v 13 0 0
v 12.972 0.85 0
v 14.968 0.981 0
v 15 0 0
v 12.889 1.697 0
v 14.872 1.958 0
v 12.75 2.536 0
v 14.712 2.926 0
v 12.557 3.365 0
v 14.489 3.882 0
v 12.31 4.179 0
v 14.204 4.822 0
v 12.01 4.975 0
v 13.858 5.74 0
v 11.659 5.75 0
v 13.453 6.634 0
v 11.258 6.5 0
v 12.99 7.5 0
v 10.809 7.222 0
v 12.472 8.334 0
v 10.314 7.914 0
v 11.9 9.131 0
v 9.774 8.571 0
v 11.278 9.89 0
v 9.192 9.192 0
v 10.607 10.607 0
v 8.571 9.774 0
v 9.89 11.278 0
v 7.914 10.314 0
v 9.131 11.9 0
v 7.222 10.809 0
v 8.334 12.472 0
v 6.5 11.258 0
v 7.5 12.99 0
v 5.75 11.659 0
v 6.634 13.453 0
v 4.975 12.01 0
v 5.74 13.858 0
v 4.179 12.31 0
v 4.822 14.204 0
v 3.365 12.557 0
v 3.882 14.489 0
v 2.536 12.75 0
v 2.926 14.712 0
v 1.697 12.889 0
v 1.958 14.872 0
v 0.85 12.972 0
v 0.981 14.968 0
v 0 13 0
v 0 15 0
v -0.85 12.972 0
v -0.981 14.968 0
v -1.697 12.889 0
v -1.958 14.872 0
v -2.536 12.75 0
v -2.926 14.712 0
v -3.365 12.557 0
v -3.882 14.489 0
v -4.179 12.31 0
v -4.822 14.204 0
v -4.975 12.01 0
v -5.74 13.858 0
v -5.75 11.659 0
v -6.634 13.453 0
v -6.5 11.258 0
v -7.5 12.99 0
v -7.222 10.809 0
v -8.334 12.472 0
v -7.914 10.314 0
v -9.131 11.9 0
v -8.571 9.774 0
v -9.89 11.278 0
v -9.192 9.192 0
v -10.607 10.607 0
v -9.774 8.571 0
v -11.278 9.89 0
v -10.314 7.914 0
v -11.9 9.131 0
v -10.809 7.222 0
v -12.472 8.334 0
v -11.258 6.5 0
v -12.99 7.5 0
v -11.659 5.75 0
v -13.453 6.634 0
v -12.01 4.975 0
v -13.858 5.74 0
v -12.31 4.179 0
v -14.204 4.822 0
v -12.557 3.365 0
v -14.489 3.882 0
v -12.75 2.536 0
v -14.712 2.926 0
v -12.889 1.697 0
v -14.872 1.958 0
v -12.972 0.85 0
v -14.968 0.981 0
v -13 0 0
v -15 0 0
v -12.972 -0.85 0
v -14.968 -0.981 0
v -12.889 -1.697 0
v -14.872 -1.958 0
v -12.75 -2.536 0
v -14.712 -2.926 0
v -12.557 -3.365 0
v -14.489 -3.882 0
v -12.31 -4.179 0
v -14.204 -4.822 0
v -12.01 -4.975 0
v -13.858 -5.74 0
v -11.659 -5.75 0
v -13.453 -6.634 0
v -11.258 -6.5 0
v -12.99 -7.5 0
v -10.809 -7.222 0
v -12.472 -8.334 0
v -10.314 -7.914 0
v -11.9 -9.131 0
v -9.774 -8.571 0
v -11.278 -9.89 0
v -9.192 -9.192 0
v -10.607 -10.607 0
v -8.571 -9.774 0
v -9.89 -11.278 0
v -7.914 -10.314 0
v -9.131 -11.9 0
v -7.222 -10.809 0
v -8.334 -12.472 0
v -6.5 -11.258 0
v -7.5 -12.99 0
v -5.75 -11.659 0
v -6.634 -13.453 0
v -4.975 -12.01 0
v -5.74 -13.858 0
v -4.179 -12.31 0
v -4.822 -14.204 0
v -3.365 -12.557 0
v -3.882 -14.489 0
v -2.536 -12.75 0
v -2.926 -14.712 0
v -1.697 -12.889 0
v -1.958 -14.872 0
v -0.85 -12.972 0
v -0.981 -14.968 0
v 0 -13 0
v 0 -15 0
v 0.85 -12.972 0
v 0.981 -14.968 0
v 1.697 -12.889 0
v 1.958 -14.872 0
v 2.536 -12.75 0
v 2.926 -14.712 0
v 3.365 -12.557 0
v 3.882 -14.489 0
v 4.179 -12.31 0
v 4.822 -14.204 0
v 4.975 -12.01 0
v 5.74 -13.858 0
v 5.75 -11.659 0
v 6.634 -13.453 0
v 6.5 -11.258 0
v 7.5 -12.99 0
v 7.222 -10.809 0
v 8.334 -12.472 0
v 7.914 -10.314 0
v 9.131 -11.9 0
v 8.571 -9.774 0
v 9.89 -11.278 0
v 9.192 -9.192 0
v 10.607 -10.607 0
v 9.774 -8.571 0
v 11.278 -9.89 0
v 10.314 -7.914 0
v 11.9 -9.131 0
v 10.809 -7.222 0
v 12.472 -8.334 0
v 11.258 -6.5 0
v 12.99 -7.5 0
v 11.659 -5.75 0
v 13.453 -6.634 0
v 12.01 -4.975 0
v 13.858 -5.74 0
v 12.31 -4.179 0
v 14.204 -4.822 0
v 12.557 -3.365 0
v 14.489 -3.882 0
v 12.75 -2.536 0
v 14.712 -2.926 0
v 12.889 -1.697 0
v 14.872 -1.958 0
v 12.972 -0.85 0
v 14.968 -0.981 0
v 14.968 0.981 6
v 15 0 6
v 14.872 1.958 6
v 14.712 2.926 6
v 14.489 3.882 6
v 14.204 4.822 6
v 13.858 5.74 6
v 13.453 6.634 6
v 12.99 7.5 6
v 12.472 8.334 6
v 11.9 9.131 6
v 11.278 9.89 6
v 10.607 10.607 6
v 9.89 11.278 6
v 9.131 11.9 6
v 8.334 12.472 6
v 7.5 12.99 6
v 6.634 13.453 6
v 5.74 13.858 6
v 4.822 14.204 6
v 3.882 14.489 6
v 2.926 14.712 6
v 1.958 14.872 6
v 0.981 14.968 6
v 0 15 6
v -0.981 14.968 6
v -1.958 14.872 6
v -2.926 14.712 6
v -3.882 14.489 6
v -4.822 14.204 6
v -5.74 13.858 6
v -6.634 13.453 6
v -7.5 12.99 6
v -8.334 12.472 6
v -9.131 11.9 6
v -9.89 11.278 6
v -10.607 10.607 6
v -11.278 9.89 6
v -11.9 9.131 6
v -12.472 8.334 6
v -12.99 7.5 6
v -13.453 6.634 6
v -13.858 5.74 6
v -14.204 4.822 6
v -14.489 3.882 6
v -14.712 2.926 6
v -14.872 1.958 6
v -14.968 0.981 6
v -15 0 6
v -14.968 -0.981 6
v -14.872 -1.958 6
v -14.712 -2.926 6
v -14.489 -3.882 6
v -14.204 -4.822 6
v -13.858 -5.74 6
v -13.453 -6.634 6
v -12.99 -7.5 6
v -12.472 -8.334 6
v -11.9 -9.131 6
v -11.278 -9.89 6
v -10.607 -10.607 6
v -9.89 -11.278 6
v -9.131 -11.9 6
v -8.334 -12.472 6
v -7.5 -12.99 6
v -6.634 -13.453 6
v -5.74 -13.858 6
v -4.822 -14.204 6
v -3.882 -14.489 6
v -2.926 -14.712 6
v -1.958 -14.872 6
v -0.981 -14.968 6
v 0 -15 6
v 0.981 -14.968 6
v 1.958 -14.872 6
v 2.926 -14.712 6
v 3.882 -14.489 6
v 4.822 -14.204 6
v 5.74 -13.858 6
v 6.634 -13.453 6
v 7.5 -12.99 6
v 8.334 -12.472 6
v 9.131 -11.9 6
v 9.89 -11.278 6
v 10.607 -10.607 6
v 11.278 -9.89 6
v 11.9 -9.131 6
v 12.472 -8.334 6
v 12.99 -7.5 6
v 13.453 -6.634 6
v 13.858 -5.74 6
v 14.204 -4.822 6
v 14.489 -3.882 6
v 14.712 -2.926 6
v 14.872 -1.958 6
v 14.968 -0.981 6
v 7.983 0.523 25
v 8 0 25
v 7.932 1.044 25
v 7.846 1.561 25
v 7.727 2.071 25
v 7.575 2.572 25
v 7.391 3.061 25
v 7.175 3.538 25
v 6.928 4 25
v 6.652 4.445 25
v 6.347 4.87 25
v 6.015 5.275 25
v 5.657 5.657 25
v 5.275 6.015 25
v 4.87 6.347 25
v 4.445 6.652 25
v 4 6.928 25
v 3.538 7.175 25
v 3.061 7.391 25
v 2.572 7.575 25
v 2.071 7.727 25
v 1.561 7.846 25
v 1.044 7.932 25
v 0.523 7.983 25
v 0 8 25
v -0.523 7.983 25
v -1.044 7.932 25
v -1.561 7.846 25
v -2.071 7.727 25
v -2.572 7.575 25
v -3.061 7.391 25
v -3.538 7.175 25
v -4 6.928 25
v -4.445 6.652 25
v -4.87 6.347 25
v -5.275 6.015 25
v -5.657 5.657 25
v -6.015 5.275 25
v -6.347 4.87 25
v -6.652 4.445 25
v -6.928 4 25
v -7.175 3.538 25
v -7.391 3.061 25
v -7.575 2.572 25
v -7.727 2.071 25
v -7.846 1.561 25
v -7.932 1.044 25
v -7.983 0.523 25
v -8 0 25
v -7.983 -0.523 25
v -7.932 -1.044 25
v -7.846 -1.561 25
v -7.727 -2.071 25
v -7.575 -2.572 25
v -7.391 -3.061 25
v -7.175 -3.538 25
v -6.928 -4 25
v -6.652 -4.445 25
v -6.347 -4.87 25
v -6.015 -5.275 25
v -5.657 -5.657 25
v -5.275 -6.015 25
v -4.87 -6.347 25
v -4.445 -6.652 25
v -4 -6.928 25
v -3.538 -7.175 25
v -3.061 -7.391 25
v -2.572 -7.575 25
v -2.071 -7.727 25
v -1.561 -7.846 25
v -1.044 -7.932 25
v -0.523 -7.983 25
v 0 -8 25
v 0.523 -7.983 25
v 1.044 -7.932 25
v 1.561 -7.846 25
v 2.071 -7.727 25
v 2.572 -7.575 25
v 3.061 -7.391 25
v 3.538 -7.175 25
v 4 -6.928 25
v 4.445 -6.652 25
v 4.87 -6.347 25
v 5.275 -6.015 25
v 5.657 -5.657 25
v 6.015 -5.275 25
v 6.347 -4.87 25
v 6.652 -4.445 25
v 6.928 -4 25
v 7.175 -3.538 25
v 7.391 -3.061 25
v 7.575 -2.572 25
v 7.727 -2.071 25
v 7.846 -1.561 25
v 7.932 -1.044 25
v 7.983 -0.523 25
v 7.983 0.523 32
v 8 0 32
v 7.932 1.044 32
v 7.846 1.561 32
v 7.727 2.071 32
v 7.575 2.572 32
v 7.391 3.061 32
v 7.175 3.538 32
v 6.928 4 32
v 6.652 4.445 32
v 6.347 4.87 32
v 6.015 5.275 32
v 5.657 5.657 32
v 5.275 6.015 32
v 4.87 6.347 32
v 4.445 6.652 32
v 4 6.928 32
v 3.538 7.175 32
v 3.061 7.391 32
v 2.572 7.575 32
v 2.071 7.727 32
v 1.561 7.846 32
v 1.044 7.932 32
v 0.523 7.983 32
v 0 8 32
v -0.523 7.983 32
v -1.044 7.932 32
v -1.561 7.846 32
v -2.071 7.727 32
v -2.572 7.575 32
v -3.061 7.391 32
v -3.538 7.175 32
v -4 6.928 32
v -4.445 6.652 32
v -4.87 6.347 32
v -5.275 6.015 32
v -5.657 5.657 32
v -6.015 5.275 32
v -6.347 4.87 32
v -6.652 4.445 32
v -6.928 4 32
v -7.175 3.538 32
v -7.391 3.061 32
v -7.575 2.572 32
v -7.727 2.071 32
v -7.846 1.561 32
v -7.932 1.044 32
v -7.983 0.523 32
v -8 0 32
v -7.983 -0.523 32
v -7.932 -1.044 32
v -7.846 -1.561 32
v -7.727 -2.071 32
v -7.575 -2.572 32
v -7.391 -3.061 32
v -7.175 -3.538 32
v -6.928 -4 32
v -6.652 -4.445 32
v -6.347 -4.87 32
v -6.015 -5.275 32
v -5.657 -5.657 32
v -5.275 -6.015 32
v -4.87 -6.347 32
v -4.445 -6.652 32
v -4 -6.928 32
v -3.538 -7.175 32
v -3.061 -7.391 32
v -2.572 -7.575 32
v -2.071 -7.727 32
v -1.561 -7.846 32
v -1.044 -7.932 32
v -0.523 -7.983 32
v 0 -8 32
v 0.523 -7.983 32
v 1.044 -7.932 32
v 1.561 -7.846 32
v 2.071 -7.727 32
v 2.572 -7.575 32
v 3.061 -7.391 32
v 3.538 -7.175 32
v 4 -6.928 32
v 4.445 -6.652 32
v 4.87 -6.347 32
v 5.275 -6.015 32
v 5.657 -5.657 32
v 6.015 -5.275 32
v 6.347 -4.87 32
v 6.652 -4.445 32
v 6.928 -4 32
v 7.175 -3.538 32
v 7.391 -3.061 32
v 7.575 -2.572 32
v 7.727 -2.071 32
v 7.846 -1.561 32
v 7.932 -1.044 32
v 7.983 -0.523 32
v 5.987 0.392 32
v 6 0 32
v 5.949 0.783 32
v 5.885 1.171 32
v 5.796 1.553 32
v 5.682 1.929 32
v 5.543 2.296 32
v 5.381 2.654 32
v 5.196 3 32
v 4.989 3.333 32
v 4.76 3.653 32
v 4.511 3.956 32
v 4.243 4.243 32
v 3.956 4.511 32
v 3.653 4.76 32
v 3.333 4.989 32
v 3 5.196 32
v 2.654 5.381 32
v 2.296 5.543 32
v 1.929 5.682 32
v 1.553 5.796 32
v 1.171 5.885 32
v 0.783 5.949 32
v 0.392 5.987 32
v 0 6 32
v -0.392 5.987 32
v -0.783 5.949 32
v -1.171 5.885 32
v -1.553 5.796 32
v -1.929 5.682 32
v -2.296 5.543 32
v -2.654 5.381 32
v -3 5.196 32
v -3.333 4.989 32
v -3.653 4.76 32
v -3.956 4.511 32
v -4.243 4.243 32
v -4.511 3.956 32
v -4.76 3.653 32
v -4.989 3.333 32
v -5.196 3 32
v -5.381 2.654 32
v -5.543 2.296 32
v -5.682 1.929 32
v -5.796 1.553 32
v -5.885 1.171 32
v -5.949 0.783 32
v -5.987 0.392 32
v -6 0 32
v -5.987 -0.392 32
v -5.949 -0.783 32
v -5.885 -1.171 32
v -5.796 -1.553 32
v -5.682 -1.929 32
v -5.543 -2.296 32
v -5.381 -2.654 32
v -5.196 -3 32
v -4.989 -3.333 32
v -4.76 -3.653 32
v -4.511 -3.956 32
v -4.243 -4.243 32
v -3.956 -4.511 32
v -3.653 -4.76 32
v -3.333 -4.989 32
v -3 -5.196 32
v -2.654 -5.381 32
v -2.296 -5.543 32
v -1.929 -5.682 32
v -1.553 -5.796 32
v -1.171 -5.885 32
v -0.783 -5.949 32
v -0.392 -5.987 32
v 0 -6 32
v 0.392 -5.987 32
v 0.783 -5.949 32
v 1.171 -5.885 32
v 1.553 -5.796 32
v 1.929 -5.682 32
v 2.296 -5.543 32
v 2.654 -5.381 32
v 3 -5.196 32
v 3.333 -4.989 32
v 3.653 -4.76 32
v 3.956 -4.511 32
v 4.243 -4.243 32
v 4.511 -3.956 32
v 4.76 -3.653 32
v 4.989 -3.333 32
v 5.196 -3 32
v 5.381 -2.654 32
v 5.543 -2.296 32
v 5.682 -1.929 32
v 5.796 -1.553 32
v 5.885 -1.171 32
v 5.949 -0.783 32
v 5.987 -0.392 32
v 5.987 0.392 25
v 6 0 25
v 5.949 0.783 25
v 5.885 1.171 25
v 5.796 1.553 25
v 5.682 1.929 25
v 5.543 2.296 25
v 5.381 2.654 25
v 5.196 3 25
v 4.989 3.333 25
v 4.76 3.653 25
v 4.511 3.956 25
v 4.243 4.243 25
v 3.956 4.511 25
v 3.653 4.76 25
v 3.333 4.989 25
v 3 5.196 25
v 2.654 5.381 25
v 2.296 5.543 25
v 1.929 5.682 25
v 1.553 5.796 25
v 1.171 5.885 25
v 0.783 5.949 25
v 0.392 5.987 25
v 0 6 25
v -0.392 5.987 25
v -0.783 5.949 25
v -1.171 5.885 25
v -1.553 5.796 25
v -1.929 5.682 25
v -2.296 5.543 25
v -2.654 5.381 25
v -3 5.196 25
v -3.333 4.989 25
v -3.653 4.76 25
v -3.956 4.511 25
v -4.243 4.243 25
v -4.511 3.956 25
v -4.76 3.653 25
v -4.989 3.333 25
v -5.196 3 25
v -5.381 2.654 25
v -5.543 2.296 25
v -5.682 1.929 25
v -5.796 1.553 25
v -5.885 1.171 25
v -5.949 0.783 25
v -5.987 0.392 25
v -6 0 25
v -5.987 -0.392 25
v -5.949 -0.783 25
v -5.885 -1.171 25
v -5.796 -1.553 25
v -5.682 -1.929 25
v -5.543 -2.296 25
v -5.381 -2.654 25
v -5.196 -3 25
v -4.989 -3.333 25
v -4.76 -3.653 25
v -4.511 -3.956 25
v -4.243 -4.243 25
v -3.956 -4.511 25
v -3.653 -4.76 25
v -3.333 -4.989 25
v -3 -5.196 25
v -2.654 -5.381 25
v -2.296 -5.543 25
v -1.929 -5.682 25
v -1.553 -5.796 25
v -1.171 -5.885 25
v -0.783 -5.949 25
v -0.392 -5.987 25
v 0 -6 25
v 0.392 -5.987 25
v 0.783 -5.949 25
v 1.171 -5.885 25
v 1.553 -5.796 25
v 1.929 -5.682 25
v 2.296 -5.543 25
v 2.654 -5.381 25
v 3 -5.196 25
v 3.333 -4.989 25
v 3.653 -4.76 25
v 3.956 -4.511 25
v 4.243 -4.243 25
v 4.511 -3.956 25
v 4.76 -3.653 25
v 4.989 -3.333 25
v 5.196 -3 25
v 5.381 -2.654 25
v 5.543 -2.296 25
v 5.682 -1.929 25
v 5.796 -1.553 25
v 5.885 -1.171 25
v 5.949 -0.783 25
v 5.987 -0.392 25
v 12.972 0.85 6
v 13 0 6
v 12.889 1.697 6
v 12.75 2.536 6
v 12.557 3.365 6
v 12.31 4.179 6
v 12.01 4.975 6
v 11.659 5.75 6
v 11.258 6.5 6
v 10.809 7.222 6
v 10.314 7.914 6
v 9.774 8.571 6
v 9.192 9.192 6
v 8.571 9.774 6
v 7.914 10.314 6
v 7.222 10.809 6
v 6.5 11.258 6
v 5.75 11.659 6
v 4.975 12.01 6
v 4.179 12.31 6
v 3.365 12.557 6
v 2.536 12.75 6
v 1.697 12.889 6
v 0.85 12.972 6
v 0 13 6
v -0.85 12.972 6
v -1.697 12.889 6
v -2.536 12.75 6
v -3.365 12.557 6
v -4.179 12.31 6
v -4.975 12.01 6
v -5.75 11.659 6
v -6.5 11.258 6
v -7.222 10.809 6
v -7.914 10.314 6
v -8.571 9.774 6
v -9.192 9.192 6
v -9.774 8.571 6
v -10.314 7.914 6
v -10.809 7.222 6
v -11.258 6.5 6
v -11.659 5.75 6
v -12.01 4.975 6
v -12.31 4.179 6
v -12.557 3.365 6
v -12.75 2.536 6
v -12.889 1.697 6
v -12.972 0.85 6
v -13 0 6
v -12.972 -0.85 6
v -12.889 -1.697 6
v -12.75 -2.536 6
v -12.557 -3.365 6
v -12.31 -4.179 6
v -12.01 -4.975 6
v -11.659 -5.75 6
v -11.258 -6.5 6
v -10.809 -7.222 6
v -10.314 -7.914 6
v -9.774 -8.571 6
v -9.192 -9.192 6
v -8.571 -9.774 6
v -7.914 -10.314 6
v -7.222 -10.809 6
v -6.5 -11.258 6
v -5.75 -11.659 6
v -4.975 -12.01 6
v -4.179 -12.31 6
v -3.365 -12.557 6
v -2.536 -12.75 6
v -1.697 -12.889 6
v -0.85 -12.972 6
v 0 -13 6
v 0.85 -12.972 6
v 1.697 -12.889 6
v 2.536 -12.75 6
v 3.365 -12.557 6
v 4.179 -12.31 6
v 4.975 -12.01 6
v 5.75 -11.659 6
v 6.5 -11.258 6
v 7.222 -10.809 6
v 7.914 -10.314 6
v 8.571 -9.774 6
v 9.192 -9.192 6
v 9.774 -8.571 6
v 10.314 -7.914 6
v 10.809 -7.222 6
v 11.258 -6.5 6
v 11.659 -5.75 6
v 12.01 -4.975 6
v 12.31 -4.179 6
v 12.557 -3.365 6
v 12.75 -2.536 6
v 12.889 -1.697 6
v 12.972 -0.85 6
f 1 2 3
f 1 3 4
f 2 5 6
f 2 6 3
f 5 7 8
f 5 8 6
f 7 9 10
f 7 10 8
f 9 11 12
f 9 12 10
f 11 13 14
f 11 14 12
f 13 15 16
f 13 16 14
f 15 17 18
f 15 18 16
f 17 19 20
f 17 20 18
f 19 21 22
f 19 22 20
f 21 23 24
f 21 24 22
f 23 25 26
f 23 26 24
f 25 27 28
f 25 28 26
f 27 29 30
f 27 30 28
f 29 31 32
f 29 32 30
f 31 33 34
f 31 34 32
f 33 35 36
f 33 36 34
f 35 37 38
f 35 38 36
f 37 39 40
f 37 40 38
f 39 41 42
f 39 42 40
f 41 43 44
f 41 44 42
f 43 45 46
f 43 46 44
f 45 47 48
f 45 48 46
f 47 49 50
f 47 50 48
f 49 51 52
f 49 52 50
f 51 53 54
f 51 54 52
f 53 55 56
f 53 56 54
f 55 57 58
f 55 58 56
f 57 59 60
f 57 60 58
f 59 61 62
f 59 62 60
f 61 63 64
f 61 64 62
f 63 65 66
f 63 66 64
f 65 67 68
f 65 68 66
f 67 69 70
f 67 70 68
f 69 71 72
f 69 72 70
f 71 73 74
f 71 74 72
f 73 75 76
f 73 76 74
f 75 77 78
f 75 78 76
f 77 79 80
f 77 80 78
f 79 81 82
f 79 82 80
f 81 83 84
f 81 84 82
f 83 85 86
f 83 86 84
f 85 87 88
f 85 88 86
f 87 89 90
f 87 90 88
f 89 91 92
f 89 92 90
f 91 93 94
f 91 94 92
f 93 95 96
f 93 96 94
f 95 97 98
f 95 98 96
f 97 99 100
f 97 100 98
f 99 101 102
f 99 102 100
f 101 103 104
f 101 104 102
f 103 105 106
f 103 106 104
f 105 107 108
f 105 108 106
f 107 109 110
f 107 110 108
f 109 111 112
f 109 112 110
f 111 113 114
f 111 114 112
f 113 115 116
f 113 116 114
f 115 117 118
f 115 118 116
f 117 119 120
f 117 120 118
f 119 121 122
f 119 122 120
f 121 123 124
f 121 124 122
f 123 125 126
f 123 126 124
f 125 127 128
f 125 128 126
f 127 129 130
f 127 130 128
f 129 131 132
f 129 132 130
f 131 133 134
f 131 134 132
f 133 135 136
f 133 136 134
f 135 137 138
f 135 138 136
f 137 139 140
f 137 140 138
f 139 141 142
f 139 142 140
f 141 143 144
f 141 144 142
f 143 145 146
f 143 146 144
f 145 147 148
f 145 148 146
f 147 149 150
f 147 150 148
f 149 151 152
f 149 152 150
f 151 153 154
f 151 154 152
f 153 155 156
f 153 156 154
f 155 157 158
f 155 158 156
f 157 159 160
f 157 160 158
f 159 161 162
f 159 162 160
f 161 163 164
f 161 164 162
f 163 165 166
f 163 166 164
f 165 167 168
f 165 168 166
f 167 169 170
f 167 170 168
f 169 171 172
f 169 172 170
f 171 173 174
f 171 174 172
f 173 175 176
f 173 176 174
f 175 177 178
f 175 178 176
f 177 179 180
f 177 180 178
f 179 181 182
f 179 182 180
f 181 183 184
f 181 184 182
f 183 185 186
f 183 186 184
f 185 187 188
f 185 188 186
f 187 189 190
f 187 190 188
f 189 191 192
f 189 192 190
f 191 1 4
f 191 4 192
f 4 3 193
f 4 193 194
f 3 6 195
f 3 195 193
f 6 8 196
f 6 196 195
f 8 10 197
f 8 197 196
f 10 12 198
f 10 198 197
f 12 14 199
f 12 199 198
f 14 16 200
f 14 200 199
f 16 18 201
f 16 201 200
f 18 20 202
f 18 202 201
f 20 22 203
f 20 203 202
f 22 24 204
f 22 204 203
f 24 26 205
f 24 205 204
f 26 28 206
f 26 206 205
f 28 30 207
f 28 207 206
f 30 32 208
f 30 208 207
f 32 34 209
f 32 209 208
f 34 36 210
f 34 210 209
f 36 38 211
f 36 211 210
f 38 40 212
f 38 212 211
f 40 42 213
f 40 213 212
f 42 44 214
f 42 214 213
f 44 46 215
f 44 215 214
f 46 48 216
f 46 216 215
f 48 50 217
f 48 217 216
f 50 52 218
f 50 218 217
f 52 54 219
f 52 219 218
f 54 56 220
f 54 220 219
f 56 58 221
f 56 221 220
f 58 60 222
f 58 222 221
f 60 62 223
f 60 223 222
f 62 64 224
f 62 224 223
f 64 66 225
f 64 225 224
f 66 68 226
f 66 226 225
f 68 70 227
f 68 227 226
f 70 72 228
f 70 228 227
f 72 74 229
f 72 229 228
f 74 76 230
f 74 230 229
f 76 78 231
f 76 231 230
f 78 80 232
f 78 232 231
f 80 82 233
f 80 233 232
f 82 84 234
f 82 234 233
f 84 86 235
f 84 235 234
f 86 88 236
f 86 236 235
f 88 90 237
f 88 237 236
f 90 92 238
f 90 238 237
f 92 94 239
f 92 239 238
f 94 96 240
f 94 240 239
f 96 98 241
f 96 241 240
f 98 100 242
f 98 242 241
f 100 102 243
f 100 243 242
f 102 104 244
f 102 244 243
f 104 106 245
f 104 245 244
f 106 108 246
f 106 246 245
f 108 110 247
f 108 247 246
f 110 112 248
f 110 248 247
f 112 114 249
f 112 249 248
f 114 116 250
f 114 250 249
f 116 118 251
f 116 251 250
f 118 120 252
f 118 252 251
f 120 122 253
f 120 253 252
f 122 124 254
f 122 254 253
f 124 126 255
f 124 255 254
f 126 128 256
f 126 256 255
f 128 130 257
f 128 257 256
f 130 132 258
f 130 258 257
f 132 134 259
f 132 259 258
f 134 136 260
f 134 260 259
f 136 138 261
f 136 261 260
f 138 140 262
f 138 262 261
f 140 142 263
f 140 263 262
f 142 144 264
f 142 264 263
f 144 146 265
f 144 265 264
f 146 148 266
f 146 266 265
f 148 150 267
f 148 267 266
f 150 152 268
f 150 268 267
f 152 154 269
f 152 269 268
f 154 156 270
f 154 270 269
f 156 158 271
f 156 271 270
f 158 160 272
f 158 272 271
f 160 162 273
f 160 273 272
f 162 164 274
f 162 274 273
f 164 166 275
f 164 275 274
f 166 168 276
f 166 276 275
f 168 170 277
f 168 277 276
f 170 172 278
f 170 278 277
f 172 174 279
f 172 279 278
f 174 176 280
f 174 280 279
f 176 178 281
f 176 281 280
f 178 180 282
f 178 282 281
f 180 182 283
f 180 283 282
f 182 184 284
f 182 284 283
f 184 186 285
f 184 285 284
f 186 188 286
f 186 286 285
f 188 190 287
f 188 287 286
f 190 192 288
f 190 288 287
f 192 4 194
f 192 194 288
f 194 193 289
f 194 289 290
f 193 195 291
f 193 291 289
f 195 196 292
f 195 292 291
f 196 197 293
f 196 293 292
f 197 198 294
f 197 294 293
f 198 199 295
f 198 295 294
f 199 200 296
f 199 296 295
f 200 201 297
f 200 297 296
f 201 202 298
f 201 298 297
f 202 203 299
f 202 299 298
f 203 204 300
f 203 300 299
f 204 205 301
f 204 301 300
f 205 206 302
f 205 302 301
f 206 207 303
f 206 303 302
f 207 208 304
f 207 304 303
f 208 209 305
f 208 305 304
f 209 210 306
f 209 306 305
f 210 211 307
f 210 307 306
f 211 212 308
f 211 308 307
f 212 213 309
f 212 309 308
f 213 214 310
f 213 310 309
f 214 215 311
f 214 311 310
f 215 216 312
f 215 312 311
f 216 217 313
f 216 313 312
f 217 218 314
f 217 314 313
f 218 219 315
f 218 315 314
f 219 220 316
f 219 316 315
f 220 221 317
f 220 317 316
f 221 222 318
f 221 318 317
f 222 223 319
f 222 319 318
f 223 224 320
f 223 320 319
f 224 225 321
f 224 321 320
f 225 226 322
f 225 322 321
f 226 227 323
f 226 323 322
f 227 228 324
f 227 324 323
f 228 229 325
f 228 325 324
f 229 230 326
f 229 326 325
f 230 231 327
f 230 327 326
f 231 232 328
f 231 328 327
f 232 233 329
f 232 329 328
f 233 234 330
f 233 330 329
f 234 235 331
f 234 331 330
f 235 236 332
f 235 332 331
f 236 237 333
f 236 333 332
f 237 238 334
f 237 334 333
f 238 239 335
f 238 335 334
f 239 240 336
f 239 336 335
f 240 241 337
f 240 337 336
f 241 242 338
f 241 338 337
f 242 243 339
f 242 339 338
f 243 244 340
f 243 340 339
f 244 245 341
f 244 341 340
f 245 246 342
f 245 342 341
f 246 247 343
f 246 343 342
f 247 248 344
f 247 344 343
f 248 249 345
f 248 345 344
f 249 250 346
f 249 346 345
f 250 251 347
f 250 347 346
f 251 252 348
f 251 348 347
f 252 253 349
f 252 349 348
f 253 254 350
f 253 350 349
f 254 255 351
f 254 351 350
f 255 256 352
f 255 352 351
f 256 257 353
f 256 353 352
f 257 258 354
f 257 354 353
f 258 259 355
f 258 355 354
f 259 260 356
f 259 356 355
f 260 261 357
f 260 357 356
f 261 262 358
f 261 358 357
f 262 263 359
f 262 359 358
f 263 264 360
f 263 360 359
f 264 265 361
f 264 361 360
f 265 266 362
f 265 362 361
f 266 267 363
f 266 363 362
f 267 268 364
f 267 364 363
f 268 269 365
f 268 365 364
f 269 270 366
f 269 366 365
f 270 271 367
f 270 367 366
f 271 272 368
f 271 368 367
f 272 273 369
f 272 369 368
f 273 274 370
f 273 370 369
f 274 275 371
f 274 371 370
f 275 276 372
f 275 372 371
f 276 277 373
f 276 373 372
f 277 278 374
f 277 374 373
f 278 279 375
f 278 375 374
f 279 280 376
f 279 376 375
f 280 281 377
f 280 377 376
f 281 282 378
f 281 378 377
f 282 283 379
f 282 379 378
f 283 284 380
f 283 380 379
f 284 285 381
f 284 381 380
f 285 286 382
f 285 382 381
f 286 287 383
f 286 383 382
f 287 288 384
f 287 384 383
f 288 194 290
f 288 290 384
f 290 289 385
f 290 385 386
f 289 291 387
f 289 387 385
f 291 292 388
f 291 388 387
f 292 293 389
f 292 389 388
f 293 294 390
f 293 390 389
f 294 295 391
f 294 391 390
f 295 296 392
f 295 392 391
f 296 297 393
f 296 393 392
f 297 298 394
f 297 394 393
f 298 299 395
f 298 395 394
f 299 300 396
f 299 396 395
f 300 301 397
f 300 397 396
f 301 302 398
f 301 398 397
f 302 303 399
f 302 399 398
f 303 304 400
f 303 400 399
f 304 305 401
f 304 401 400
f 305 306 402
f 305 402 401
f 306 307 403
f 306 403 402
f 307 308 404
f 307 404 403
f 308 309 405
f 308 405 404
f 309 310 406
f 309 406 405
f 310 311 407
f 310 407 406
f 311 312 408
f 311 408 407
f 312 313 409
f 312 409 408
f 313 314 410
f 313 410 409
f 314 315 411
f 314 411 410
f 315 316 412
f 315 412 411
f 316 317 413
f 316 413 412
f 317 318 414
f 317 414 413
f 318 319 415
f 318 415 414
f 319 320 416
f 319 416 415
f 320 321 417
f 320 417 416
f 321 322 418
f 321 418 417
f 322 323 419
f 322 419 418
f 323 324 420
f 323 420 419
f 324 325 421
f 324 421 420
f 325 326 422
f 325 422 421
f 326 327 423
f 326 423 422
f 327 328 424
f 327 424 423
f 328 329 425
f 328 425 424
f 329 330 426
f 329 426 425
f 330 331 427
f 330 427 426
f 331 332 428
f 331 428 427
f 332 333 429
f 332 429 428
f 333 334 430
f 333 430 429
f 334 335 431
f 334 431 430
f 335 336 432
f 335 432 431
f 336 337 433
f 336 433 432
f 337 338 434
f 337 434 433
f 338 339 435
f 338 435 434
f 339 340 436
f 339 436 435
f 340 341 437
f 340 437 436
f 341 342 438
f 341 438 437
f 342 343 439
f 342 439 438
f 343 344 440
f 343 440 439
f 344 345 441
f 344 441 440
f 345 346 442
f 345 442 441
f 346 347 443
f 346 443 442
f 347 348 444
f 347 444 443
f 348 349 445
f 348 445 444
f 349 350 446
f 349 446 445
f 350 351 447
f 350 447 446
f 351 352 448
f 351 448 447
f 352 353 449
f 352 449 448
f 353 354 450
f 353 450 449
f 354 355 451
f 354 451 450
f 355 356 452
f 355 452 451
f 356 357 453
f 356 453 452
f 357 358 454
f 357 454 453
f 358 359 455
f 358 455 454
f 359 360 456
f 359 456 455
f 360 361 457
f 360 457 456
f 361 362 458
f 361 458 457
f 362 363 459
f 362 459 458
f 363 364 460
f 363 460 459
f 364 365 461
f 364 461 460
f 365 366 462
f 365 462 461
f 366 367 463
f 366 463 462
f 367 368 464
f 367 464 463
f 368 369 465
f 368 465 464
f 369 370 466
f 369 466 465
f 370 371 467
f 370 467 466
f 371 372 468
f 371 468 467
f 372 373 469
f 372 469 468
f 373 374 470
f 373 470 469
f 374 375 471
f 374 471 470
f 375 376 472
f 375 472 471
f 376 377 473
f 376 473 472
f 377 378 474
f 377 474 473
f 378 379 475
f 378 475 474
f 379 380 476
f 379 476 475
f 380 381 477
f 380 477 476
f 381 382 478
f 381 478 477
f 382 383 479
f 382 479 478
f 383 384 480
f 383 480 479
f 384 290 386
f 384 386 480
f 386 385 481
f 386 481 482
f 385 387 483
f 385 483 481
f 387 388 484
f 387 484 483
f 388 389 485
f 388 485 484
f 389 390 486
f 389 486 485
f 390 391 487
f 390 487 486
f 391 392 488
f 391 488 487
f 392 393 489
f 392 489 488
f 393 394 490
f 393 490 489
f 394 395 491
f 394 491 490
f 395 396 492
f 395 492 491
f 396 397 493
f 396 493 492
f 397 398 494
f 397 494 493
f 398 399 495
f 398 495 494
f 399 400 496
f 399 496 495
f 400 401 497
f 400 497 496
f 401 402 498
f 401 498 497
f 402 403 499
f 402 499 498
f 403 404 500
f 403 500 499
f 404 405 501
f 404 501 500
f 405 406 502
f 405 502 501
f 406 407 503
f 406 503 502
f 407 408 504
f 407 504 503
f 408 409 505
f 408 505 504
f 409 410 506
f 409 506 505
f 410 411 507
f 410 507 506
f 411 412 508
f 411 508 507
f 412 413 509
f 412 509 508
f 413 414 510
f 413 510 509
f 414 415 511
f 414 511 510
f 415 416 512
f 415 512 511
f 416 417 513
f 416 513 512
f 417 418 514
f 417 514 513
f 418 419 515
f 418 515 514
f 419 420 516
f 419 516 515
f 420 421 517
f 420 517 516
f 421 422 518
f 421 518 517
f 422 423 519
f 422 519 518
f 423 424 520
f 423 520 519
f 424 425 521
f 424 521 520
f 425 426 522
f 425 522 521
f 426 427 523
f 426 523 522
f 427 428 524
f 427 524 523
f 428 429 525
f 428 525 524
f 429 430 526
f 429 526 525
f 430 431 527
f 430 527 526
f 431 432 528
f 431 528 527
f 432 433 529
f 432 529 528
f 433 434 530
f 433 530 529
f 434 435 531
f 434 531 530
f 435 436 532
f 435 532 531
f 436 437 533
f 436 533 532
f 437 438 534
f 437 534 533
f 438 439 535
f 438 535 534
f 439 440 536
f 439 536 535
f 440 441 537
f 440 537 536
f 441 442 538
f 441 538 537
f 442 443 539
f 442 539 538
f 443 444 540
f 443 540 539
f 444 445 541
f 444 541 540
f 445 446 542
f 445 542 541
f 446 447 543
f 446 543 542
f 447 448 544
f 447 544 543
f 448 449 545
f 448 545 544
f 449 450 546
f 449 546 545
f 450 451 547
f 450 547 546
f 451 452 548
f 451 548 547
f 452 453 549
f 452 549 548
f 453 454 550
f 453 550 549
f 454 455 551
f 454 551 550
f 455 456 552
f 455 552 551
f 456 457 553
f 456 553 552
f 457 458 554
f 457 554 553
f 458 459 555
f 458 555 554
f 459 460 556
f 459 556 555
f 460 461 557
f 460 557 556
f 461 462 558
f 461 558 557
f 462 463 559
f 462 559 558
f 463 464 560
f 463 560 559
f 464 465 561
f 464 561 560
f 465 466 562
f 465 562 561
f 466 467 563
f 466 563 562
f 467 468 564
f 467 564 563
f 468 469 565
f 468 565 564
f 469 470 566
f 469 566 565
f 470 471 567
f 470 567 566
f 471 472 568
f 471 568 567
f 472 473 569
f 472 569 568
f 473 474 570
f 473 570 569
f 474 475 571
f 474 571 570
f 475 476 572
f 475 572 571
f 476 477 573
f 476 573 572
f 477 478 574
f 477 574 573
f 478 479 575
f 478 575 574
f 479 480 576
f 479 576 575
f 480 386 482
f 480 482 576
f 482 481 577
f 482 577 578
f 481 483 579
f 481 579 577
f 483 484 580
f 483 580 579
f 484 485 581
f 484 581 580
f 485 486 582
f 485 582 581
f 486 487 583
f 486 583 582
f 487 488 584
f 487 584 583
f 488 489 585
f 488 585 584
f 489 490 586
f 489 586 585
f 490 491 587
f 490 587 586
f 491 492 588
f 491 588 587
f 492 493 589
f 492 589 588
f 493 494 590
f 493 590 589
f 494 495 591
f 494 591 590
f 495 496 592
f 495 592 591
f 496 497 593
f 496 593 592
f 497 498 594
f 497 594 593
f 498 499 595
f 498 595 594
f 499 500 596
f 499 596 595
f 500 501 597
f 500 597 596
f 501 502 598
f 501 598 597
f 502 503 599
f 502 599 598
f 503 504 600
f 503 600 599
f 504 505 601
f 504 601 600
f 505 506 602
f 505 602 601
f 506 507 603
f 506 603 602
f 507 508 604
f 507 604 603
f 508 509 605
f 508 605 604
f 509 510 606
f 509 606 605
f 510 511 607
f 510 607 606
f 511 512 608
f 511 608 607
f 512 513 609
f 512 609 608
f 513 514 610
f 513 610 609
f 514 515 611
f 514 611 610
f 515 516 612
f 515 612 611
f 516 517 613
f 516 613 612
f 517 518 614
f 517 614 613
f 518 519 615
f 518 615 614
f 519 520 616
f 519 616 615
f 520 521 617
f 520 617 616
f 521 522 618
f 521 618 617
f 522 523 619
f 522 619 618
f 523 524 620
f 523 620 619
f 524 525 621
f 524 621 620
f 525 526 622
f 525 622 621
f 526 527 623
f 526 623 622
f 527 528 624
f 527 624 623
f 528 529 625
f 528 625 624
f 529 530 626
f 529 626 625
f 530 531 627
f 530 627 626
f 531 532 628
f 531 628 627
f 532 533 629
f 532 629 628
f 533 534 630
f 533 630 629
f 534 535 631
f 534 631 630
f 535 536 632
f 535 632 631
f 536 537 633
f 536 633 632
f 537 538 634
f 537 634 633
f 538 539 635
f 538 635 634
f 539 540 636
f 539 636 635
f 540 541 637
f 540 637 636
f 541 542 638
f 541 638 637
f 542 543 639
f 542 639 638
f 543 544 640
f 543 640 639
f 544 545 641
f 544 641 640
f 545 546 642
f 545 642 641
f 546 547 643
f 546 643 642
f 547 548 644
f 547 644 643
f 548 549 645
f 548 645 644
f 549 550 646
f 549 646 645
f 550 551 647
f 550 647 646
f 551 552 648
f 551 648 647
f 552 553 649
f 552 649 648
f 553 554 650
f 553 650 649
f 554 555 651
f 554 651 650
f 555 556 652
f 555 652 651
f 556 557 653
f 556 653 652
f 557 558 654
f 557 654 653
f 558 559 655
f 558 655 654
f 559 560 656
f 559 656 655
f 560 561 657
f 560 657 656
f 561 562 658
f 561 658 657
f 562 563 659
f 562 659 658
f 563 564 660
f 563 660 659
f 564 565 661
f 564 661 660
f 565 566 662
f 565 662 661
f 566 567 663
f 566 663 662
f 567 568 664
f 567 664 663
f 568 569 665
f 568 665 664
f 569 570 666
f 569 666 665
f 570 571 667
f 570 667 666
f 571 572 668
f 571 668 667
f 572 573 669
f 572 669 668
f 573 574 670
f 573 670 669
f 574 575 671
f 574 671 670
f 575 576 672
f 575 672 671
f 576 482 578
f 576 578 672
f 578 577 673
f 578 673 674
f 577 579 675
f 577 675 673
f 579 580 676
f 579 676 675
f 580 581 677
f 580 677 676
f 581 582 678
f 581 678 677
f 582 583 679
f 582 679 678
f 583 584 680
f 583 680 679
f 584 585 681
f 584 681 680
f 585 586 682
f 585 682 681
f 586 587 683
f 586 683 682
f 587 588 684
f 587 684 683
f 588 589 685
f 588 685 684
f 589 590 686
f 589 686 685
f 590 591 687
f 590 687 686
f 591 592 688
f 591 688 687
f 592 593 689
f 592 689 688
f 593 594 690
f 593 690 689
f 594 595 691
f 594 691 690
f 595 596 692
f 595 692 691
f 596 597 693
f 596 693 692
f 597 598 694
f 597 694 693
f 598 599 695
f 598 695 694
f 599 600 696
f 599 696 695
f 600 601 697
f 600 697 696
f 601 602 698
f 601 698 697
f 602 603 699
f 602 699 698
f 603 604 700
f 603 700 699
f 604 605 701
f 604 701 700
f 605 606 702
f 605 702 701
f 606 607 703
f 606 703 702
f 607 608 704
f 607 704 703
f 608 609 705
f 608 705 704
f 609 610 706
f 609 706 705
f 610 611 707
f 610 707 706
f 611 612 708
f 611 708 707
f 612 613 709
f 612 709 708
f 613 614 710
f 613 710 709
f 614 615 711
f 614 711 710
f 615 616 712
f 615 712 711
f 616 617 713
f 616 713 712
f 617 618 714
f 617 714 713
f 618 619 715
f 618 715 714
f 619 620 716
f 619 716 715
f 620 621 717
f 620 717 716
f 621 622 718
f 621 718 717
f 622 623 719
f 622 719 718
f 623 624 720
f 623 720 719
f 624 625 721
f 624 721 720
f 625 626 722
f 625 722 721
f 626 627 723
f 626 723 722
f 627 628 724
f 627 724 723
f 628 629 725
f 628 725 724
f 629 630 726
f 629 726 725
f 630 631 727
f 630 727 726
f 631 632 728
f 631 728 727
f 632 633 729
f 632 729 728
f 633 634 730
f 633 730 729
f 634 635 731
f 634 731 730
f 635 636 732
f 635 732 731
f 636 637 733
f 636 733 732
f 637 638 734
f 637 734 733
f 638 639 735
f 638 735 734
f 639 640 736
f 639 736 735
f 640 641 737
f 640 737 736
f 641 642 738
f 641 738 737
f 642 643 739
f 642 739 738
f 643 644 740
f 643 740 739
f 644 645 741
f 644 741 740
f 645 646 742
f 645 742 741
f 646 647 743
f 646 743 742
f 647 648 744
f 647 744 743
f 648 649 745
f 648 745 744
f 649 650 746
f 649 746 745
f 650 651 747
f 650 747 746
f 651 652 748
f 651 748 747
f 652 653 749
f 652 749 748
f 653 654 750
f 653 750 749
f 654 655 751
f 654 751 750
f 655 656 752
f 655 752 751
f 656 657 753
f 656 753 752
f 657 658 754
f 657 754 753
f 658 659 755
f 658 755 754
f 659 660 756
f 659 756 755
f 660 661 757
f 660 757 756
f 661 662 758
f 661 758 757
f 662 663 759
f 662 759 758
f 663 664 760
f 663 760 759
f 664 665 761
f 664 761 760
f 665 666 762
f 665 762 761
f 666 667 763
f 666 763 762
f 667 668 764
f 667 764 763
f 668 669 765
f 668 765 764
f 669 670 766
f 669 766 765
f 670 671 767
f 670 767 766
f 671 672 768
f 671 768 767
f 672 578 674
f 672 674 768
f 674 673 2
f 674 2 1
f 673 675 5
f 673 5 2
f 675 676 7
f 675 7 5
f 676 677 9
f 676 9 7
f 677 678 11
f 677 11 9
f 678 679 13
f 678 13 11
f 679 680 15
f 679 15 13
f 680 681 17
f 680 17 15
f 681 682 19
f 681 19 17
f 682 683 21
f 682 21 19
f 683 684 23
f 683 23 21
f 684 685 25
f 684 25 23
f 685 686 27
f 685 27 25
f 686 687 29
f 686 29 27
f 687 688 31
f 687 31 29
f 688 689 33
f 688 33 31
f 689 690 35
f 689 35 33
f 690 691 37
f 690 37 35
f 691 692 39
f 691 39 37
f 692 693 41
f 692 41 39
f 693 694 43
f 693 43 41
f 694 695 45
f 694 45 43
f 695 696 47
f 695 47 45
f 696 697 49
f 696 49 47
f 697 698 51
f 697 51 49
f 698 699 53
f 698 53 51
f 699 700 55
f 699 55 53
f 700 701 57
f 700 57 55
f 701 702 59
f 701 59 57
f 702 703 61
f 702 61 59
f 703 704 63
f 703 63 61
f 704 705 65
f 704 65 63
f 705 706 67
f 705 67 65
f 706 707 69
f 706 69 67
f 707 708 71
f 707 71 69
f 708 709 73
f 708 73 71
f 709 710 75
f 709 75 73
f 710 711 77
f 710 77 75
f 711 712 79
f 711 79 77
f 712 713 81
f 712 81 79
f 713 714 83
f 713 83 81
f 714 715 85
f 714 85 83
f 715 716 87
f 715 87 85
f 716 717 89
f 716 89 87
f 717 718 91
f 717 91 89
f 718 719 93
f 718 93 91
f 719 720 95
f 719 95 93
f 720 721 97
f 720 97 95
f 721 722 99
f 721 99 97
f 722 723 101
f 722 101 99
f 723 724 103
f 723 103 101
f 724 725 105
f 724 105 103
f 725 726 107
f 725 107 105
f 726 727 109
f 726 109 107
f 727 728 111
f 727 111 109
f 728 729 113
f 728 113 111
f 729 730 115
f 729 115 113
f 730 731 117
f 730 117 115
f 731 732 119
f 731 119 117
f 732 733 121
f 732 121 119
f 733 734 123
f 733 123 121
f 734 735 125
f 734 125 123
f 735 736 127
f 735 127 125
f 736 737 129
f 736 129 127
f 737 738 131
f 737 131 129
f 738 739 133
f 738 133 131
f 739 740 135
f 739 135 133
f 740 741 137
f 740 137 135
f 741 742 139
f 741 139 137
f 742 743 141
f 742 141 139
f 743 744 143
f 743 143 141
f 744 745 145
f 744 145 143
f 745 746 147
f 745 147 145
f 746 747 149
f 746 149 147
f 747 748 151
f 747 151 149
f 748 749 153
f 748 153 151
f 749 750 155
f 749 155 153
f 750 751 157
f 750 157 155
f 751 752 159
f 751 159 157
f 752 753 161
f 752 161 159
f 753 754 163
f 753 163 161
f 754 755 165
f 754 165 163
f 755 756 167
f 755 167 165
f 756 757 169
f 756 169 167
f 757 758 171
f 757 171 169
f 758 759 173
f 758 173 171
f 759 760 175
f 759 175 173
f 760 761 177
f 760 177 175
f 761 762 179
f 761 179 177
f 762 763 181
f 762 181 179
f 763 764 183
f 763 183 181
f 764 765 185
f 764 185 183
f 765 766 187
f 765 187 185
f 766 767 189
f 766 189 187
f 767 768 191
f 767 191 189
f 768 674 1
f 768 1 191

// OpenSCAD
// Original MechIntel educational model. CC0-1.0. Units: mm.
// Not a standardized or load-rated component.
$fn=96;
// Section points: [radius, height], mm. Edit to change the profile.
section=[[13, 0], [15, 0], [15, 6], [8, 25], [8, 32], [6, 32], [6, 25], [13, 6]];
rotate_extrude($fn=96) polygon(points=section);
